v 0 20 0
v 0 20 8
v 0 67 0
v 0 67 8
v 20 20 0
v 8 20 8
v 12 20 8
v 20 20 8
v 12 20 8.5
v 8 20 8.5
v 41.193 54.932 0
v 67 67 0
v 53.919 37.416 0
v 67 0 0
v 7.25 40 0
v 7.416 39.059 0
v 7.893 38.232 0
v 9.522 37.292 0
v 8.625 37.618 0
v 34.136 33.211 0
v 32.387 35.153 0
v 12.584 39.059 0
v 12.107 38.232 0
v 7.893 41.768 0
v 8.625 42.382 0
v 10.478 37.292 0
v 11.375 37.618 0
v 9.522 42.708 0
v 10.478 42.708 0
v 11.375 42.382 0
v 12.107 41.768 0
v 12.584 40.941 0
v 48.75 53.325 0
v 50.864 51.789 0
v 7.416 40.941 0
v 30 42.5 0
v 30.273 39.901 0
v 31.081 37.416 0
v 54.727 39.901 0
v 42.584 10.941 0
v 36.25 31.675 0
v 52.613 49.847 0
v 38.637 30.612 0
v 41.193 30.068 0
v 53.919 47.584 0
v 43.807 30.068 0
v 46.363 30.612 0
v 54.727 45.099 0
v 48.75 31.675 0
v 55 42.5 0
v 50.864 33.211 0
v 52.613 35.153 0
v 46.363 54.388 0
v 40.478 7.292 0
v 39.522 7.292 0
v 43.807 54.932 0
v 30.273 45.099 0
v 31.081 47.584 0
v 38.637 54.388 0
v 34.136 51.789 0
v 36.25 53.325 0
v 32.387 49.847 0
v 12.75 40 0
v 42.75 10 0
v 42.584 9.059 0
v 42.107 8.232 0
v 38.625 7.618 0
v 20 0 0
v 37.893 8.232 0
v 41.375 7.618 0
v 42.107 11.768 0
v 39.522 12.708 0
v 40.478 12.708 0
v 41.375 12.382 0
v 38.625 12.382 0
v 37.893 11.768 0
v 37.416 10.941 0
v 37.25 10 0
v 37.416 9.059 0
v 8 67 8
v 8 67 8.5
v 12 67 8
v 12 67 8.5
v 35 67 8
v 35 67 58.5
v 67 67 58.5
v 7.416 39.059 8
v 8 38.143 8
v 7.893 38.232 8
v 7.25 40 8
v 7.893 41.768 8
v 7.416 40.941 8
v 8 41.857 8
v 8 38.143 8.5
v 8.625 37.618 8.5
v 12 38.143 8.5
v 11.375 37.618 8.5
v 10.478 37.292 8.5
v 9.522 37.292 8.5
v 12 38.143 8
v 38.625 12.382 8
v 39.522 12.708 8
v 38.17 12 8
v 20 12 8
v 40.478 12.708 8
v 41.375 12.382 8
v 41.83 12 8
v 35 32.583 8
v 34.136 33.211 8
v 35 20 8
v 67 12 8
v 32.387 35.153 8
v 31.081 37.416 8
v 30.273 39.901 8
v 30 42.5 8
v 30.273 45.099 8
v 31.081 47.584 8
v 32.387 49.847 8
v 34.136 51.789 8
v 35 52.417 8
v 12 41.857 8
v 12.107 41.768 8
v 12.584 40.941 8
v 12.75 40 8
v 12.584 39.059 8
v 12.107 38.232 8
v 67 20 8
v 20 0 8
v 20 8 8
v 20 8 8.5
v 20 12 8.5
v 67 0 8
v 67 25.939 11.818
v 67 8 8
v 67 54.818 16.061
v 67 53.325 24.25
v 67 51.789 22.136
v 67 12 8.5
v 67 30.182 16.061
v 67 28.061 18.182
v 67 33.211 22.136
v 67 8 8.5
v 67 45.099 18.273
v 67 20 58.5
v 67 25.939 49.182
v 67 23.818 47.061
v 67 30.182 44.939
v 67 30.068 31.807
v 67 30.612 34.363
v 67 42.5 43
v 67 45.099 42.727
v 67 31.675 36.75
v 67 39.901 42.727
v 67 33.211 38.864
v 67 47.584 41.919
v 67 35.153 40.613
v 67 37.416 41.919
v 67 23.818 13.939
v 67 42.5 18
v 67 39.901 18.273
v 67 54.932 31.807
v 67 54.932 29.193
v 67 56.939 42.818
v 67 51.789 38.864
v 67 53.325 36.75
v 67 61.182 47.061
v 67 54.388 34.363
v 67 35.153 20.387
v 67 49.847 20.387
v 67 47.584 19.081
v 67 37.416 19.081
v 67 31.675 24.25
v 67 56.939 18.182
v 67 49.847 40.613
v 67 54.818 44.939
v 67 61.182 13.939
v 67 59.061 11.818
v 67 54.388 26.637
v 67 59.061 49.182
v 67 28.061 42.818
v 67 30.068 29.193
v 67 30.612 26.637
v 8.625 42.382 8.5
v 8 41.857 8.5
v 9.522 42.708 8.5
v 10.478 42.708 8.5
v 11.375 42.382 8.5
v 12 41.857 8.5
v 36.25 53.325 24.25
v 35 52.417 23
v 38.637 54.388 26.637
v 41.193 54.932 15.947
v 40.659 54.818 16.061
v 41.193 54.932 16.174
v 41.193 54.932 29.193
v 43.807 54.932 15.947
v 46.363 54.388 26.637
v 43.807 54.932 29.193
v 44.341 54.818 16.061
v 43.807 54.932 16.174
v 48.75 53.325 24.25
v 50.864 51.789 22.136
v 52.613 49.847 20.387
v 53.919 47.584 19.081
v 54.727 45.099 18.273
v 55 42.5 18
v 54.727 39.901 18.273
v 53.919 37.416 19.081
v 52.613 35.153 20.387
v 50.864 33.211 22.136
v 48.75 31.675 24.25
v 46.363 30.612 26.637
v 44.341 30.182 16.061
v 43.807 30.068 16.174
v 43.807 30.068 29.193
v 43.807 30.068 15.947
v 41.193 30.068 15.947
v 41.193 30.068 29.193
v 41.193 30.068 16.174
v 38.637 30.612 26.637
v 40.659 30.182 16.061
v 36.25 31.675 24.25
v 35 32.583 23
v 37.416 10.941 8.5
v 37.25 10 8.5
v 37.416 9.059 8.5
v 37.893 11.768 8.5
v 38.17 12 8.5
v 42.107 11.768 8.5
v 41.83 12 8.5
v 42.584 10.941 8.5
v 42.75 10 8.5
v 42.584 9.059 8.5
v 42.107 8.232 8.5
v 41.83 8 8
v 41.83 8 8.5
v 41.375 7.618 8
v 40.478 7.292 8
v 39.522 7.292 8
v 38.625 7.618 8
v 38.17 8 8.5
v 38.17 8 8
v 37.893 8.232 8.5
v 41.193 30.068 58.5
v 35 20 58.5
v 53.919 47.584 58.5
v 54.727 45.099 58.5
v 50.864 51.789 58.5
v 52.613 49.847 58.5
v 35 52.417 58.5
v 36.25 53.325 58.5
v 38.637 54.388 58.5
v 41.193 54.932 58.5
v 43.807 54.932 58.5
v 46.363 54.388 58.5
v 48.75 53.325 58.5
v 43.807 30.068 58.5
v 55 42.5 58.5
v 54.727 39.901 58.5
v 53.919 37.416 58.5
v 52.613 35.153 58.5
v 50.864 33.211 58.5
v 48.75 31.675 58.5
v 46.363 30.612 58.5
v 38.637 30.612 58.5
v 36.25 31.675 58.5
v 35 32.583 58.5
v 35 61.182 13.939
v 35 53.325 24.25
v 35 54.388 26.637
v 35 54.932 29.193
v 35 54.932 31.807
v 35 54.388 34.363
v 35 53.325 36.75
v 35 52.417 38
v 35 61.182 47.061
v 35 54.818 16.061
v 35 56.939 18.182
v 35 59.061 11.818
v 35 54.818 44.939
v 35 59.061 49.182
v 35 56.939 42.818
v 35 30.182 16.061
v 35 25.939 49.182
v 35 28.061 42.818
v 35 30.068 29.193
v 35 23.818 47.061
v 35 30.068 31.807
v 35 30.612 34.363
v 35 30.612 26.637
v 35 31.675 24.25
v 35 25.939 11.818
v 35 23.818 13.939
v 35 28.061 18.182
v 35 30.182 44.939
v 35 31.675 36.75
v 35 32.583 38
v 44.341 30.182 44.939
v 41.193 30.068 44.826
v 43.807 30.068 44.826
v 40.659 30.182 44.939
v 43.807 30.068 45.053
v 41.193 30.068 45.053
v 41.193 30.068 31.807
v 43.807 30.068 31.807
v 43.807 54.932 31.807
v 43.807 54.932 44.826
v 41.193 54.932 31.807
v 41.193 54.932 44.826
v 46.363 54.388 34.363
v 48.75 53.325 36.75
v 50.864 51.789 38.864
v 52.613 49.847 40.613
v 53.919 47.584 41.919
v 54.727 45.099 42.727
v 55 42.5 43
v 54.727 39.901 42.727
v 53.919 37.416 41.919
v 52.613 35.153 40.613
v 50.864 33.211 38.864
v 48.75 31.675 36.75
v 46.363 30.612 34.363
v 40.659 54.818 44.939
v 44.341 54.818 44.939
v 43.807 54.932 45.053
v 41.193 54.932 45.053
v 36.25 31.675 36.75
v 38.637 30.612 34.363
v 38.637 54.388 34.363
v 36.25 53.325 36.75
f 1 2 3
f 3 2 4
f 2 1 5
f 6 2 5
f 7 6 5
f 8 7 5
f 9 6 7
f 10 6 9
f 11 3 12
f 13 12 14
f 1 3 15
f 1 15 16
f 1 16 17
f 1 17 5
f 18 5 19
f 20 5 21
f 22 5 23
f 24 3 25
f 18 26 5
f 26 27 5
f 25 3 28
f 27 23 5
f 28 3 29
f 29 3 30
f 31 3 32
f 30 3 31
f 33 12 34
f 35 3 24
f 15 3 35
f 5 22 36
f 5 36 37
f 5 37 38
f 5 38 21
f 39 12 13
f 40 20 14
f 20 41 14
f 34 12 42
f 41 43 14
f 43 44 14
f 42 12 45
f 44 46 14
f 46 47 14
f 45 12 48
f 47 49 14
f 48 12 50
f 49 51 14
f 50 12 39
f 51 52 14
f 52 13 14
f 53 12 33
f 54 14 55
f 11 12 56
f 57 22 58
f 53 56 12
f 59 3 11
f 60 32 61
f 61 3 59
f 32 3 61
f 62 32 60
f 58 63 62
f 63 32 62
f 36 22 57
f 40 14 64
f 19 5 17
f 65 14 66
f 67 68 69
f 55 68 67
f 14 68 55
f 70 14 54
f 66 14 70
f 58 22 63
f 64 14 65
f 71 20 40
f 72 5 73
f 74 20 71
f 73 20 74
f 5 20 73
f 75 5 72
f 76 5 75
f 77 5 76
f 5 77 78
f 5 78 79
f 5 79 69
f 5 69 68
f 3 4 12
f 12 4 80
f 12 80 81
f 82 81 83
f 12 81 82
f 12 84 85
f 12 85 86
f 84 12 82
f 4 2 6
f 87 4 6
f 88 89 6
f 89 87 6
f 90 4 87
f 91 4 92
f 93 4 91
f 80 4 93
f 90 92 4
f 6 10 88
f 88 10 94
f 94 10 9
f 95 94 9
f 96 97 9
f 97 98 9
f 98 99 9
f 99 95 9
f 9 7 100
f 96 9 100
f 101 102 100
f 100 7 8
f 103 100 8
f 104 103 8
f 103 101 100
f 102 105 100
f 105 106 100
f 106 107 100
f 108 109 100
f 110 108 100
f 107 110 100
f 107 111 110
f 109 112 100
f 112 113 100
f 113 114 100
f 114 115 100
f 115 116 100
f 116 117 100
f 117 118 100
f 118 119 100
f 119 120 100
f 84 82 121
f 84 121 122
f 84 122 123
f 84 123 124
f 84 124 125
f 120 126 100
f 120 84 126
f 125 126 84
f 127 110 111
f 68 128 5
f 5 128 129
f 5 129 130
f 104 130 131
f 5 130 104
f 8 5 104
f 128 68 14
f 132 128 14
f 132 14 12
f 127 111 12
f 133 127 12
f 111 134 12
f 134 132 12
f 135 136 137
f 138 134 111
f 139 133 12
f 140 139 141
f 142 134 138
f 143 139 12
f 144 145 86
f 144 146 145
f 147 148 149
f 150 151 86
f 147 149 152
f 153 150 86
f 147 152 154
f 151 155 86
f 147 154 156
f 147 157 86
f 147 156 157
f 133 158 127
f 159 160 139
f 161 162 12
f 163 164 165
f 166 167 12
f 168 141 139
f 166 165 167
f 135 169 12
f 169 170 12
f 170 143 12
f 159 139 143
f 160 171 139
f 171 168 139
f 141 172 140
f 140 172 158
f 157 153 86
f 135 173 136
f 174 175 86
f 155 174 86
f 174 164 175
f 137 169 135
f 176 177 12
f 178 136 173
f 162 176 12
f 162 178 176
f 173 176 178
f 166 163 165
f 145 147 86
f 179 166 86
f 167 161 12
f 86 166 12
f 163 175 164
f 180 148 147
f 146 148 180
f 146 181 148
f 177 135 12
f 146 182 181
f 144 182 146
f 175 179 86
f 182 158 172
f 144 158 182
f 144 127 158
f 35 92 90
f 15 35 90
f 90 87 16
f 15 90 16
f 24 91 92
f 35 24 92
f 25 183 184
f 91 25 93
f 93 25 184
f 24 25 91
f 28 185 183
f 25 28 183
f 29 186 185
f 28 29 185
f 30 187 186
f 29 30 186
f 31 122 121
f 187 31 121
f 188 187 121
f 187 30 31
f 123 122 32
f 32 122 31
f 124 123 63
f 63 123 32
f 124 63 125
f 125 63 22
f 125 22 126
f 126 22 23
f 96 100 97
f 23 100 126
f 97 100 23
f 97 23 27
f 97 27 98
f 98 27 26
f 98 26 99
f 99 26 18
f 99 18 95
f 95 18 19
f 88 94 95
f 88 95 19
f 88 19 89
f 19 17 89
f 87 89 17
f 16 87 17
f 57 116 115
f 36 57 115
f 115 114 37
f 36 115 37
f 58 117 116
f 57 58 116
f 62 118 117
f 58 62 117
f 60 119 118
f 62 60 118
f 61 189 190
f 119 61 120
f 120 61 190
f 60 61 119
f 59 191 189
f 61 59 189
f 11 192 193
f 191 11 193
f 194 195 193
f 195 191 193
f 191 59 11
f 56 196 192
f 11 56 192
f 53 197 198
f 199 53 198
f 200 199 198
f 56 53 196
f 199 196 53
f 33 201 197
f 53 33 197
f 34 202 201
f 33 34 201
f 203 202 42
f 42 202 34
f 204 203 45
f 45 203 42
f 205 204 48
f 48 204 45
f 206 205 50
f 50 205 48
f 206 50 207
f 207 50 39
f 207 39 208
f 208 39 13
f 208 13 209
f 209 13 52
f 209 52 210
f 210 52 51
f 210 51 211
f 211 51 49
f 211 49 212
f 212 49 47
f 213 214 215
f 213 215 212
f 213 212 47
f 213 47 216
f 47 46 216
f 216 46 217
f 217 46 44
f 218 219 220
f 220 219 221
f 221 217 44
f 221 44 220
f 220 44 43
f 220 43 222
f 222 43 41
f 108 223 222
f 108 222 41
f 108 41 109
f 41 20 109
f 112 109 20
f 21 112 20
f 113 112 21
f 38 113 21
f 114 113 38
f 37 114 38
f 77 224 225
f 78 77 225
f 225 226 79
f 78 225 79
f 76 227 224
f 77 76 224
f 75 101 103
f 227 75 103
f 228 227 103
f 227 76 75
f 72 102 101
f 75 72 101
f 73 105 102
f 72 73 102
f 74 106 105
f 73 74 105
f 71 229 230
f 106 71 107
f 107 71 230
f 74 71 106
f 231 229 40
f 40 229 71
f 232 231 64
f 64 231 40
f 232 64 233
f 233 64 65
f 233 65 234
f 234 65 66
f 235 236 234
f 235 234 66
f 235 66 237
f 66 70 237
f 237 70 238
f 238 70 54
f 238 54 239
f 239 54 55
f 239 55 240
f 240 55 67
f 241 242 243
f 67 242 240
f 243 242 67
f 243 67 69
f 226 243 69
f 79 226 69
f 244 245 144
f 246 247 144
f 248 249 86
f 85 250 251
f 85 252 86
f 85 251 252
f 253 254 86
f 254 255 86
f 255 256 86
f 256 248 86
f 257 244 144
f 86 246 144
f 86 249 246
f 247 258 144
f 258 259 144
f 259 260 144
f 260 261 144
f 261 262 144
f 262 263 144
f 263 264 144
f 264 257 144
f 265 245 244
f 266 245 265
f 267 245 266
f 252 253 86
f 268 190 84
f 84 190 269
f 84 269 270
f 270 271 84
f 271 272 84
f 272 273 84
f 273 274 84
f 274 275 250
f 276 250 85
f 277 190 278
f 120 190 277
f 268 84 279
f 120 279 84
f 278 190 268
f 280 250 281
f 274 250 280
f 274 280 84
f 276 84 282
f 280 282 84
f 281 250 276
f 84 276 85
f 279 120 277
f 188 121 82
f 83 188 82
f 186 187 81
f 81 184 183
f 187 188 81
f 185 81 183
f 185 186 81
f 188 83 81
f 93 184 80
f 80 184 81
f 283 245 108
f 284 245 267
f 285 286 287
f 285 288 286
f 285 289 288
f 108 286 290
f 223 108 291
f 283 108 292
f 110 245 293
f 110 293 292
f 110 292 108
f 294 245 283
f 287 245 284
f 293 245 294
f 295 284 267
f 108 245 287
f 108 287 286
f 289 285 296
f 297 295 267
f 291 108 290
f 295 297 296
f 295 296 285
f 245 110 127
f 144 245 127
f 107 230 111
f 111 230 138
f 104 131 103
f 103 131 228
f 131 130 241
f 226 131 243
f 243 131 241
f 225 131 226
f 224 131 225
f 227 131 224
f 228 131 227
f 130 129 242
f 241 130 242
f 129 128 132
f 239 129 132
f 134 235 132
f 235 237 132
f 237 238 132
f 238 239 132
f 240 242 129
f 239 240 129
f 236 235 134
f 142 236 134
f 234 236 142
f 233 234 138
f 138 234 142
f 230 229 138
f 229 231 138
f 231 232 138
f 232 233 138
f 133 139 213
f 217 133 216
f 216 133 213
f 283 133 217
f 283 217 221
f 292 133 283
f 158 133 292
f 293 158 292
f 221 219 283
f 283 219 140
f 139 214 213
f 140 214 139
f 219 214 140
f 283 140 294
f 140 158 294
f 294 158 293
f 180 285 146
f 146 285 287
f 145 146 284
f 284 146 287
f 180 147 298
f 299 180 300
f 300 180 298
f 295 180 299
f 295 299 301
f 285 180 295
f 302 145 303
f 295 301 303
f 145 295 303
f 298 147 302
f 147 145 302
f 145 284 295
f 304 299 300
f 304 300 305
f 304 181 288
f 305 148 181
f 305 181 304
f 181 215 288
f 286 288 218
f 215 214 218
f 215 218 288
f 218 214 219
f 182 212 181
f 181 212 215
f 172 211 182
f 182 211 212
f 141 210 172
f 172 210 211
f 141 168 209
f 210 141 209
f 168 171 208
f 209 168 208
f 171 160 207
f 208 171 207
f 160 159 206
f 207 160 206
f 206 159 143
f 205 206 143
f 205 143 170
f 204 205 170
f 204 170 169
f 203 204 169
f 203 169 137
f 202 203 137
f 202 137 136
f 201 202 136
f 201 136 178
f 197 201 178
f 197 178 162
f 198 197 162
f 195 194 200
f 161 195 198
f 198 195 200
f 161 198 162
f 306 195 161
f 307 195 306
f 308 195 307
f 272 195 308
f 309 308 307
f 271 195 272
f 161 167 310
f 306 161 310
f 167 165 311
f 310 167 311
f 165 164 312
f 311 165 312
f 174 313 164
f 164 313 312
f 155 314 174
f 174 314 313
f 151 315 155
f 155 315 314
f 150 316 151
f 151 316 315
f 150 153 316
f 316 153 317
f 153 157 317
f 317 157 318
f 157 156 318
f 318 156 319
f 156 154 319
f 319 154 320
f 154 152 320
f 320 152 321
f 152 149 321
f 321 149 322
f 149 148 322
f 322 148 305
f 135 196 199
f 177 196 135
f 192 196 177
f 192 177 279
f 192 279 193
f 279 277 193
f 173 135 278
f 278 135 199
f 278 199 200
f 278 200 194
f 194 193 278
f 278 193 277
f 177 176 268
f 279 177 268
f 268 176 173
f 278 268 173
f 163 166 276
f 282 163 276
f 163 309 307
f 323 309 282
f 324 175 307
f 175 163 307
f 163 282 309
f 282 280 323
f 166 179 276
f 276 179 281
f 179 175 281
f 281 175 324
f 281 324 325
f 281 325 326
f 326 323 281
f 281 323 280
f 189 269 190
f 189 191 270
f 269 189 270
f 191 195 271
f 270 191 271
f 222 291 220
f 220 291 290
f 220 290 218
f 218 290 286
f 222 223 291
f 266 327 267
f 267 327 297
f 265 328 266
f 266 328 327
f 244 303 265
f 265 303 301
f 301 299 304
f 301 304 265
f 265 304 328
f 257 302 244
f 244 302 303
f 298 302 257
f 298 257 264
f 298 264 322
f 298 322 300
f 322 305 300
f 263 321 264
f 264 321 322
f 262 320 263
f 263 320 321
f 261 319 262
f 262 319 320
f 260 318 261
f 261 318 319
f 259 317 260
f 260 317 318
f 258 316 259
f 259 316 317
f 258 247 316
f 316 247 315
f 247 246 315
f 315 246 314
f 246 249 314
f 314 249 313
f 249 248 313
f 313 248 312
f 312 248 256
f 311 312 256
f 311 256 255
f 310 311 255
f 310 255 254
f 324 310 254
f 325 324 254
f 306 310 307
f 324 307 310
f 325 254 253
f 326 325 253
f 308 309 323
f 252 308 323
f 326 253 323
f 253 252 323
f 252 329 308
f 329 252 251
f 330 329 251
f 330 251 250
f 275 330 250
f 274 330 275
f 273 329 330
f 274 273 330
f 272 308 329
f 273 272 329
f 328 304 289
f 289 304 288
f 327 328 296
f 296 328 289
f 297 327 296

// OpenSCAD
barwidth = 20;
width_ridge=4;
widthNema17=45;

nema17holeOffset =6;
nema17innerHole=25/2;
nema17Shaft=8/2;
nema17Center = barwidth+widthNema17/2;
nema17HoleDistance =31;

motorThickNess=5;
offsetx =0;
offsety  =0;



height = barwidth+widthNema17+offsety+2;
width = barwidth+widthNema17+offsetx+2;

thickness=8;
spacing_bars = 50;
largeCircle = 70.0;
holeSize=5.5;

holes = [

	[barwidth+barwidth,barwidth /2,5.5],
	[barwidth /2,barwidth+barwidth,5.5],
	

];



difference() {
union() {

cube([width,width,thickness],false);

translate([offsetx+barwidth/2-width_ridge/2 ,offsety+ barwidth,0.5]) {
	cube([width_ridge,width - barwidth - offsety,thickness],false);
}

translate([offsetx + barwidth,offsety+barwidth/2-width_ridge/2,0.5]) {
	cube([width - barwidth - offsetx,width_ridge,thickness],false);
}

translate([barwidth+15,barwidth,thickness])
	cube([(width-barwidth)-15,height-barwidth,nema17Center+thickness],false);

}



translate([0,0,-0.1]) {
	cube([barwidth,barwidth,thickness+motorThickNess],false);


	for(i = holes) {
		translate([offsetx + i[0],offsety + i[1],0])
			cylinder(h=100,r=i[2]/2, center = false, $fs=1);
	}


}

translate([nema17Center,nema17Center,-1])
cylinder(h=100,r=nema17innerHole, center = false, $fs=1);

translate([width+1,nema17Center,thickness+widthNema17/2])
rotate([0,-90,0])
union() {
	cylinder(h=100,r=nema17innerHole, center = false, $fs=1);

translate([-nema17HoleDistance/2,-nema17HoleDistance/2,thickness+motorThickNess/2])
	rotate([0,0,-45])
		cube([3,6,400],true);	

translate([nema17HoleDistance/2,-nema17HoleDistance/2,thickness+motorThickNess/2])
	rotate([0,0,45])
		cube([3,6,400],true);	


translate([nema17HoleDistance/2,nema17HoleDistance/2,thickness+motorThickNess/2])
	rotate([0,0,-45])
		cube([3,6,400],true);	

translate([-nema17HoleDistance/2,nema17HoleDistance/2,thickness+motorThickNess/2])
	rotate([0,0,45])
		cube([3,6,400],true);	
}

}
